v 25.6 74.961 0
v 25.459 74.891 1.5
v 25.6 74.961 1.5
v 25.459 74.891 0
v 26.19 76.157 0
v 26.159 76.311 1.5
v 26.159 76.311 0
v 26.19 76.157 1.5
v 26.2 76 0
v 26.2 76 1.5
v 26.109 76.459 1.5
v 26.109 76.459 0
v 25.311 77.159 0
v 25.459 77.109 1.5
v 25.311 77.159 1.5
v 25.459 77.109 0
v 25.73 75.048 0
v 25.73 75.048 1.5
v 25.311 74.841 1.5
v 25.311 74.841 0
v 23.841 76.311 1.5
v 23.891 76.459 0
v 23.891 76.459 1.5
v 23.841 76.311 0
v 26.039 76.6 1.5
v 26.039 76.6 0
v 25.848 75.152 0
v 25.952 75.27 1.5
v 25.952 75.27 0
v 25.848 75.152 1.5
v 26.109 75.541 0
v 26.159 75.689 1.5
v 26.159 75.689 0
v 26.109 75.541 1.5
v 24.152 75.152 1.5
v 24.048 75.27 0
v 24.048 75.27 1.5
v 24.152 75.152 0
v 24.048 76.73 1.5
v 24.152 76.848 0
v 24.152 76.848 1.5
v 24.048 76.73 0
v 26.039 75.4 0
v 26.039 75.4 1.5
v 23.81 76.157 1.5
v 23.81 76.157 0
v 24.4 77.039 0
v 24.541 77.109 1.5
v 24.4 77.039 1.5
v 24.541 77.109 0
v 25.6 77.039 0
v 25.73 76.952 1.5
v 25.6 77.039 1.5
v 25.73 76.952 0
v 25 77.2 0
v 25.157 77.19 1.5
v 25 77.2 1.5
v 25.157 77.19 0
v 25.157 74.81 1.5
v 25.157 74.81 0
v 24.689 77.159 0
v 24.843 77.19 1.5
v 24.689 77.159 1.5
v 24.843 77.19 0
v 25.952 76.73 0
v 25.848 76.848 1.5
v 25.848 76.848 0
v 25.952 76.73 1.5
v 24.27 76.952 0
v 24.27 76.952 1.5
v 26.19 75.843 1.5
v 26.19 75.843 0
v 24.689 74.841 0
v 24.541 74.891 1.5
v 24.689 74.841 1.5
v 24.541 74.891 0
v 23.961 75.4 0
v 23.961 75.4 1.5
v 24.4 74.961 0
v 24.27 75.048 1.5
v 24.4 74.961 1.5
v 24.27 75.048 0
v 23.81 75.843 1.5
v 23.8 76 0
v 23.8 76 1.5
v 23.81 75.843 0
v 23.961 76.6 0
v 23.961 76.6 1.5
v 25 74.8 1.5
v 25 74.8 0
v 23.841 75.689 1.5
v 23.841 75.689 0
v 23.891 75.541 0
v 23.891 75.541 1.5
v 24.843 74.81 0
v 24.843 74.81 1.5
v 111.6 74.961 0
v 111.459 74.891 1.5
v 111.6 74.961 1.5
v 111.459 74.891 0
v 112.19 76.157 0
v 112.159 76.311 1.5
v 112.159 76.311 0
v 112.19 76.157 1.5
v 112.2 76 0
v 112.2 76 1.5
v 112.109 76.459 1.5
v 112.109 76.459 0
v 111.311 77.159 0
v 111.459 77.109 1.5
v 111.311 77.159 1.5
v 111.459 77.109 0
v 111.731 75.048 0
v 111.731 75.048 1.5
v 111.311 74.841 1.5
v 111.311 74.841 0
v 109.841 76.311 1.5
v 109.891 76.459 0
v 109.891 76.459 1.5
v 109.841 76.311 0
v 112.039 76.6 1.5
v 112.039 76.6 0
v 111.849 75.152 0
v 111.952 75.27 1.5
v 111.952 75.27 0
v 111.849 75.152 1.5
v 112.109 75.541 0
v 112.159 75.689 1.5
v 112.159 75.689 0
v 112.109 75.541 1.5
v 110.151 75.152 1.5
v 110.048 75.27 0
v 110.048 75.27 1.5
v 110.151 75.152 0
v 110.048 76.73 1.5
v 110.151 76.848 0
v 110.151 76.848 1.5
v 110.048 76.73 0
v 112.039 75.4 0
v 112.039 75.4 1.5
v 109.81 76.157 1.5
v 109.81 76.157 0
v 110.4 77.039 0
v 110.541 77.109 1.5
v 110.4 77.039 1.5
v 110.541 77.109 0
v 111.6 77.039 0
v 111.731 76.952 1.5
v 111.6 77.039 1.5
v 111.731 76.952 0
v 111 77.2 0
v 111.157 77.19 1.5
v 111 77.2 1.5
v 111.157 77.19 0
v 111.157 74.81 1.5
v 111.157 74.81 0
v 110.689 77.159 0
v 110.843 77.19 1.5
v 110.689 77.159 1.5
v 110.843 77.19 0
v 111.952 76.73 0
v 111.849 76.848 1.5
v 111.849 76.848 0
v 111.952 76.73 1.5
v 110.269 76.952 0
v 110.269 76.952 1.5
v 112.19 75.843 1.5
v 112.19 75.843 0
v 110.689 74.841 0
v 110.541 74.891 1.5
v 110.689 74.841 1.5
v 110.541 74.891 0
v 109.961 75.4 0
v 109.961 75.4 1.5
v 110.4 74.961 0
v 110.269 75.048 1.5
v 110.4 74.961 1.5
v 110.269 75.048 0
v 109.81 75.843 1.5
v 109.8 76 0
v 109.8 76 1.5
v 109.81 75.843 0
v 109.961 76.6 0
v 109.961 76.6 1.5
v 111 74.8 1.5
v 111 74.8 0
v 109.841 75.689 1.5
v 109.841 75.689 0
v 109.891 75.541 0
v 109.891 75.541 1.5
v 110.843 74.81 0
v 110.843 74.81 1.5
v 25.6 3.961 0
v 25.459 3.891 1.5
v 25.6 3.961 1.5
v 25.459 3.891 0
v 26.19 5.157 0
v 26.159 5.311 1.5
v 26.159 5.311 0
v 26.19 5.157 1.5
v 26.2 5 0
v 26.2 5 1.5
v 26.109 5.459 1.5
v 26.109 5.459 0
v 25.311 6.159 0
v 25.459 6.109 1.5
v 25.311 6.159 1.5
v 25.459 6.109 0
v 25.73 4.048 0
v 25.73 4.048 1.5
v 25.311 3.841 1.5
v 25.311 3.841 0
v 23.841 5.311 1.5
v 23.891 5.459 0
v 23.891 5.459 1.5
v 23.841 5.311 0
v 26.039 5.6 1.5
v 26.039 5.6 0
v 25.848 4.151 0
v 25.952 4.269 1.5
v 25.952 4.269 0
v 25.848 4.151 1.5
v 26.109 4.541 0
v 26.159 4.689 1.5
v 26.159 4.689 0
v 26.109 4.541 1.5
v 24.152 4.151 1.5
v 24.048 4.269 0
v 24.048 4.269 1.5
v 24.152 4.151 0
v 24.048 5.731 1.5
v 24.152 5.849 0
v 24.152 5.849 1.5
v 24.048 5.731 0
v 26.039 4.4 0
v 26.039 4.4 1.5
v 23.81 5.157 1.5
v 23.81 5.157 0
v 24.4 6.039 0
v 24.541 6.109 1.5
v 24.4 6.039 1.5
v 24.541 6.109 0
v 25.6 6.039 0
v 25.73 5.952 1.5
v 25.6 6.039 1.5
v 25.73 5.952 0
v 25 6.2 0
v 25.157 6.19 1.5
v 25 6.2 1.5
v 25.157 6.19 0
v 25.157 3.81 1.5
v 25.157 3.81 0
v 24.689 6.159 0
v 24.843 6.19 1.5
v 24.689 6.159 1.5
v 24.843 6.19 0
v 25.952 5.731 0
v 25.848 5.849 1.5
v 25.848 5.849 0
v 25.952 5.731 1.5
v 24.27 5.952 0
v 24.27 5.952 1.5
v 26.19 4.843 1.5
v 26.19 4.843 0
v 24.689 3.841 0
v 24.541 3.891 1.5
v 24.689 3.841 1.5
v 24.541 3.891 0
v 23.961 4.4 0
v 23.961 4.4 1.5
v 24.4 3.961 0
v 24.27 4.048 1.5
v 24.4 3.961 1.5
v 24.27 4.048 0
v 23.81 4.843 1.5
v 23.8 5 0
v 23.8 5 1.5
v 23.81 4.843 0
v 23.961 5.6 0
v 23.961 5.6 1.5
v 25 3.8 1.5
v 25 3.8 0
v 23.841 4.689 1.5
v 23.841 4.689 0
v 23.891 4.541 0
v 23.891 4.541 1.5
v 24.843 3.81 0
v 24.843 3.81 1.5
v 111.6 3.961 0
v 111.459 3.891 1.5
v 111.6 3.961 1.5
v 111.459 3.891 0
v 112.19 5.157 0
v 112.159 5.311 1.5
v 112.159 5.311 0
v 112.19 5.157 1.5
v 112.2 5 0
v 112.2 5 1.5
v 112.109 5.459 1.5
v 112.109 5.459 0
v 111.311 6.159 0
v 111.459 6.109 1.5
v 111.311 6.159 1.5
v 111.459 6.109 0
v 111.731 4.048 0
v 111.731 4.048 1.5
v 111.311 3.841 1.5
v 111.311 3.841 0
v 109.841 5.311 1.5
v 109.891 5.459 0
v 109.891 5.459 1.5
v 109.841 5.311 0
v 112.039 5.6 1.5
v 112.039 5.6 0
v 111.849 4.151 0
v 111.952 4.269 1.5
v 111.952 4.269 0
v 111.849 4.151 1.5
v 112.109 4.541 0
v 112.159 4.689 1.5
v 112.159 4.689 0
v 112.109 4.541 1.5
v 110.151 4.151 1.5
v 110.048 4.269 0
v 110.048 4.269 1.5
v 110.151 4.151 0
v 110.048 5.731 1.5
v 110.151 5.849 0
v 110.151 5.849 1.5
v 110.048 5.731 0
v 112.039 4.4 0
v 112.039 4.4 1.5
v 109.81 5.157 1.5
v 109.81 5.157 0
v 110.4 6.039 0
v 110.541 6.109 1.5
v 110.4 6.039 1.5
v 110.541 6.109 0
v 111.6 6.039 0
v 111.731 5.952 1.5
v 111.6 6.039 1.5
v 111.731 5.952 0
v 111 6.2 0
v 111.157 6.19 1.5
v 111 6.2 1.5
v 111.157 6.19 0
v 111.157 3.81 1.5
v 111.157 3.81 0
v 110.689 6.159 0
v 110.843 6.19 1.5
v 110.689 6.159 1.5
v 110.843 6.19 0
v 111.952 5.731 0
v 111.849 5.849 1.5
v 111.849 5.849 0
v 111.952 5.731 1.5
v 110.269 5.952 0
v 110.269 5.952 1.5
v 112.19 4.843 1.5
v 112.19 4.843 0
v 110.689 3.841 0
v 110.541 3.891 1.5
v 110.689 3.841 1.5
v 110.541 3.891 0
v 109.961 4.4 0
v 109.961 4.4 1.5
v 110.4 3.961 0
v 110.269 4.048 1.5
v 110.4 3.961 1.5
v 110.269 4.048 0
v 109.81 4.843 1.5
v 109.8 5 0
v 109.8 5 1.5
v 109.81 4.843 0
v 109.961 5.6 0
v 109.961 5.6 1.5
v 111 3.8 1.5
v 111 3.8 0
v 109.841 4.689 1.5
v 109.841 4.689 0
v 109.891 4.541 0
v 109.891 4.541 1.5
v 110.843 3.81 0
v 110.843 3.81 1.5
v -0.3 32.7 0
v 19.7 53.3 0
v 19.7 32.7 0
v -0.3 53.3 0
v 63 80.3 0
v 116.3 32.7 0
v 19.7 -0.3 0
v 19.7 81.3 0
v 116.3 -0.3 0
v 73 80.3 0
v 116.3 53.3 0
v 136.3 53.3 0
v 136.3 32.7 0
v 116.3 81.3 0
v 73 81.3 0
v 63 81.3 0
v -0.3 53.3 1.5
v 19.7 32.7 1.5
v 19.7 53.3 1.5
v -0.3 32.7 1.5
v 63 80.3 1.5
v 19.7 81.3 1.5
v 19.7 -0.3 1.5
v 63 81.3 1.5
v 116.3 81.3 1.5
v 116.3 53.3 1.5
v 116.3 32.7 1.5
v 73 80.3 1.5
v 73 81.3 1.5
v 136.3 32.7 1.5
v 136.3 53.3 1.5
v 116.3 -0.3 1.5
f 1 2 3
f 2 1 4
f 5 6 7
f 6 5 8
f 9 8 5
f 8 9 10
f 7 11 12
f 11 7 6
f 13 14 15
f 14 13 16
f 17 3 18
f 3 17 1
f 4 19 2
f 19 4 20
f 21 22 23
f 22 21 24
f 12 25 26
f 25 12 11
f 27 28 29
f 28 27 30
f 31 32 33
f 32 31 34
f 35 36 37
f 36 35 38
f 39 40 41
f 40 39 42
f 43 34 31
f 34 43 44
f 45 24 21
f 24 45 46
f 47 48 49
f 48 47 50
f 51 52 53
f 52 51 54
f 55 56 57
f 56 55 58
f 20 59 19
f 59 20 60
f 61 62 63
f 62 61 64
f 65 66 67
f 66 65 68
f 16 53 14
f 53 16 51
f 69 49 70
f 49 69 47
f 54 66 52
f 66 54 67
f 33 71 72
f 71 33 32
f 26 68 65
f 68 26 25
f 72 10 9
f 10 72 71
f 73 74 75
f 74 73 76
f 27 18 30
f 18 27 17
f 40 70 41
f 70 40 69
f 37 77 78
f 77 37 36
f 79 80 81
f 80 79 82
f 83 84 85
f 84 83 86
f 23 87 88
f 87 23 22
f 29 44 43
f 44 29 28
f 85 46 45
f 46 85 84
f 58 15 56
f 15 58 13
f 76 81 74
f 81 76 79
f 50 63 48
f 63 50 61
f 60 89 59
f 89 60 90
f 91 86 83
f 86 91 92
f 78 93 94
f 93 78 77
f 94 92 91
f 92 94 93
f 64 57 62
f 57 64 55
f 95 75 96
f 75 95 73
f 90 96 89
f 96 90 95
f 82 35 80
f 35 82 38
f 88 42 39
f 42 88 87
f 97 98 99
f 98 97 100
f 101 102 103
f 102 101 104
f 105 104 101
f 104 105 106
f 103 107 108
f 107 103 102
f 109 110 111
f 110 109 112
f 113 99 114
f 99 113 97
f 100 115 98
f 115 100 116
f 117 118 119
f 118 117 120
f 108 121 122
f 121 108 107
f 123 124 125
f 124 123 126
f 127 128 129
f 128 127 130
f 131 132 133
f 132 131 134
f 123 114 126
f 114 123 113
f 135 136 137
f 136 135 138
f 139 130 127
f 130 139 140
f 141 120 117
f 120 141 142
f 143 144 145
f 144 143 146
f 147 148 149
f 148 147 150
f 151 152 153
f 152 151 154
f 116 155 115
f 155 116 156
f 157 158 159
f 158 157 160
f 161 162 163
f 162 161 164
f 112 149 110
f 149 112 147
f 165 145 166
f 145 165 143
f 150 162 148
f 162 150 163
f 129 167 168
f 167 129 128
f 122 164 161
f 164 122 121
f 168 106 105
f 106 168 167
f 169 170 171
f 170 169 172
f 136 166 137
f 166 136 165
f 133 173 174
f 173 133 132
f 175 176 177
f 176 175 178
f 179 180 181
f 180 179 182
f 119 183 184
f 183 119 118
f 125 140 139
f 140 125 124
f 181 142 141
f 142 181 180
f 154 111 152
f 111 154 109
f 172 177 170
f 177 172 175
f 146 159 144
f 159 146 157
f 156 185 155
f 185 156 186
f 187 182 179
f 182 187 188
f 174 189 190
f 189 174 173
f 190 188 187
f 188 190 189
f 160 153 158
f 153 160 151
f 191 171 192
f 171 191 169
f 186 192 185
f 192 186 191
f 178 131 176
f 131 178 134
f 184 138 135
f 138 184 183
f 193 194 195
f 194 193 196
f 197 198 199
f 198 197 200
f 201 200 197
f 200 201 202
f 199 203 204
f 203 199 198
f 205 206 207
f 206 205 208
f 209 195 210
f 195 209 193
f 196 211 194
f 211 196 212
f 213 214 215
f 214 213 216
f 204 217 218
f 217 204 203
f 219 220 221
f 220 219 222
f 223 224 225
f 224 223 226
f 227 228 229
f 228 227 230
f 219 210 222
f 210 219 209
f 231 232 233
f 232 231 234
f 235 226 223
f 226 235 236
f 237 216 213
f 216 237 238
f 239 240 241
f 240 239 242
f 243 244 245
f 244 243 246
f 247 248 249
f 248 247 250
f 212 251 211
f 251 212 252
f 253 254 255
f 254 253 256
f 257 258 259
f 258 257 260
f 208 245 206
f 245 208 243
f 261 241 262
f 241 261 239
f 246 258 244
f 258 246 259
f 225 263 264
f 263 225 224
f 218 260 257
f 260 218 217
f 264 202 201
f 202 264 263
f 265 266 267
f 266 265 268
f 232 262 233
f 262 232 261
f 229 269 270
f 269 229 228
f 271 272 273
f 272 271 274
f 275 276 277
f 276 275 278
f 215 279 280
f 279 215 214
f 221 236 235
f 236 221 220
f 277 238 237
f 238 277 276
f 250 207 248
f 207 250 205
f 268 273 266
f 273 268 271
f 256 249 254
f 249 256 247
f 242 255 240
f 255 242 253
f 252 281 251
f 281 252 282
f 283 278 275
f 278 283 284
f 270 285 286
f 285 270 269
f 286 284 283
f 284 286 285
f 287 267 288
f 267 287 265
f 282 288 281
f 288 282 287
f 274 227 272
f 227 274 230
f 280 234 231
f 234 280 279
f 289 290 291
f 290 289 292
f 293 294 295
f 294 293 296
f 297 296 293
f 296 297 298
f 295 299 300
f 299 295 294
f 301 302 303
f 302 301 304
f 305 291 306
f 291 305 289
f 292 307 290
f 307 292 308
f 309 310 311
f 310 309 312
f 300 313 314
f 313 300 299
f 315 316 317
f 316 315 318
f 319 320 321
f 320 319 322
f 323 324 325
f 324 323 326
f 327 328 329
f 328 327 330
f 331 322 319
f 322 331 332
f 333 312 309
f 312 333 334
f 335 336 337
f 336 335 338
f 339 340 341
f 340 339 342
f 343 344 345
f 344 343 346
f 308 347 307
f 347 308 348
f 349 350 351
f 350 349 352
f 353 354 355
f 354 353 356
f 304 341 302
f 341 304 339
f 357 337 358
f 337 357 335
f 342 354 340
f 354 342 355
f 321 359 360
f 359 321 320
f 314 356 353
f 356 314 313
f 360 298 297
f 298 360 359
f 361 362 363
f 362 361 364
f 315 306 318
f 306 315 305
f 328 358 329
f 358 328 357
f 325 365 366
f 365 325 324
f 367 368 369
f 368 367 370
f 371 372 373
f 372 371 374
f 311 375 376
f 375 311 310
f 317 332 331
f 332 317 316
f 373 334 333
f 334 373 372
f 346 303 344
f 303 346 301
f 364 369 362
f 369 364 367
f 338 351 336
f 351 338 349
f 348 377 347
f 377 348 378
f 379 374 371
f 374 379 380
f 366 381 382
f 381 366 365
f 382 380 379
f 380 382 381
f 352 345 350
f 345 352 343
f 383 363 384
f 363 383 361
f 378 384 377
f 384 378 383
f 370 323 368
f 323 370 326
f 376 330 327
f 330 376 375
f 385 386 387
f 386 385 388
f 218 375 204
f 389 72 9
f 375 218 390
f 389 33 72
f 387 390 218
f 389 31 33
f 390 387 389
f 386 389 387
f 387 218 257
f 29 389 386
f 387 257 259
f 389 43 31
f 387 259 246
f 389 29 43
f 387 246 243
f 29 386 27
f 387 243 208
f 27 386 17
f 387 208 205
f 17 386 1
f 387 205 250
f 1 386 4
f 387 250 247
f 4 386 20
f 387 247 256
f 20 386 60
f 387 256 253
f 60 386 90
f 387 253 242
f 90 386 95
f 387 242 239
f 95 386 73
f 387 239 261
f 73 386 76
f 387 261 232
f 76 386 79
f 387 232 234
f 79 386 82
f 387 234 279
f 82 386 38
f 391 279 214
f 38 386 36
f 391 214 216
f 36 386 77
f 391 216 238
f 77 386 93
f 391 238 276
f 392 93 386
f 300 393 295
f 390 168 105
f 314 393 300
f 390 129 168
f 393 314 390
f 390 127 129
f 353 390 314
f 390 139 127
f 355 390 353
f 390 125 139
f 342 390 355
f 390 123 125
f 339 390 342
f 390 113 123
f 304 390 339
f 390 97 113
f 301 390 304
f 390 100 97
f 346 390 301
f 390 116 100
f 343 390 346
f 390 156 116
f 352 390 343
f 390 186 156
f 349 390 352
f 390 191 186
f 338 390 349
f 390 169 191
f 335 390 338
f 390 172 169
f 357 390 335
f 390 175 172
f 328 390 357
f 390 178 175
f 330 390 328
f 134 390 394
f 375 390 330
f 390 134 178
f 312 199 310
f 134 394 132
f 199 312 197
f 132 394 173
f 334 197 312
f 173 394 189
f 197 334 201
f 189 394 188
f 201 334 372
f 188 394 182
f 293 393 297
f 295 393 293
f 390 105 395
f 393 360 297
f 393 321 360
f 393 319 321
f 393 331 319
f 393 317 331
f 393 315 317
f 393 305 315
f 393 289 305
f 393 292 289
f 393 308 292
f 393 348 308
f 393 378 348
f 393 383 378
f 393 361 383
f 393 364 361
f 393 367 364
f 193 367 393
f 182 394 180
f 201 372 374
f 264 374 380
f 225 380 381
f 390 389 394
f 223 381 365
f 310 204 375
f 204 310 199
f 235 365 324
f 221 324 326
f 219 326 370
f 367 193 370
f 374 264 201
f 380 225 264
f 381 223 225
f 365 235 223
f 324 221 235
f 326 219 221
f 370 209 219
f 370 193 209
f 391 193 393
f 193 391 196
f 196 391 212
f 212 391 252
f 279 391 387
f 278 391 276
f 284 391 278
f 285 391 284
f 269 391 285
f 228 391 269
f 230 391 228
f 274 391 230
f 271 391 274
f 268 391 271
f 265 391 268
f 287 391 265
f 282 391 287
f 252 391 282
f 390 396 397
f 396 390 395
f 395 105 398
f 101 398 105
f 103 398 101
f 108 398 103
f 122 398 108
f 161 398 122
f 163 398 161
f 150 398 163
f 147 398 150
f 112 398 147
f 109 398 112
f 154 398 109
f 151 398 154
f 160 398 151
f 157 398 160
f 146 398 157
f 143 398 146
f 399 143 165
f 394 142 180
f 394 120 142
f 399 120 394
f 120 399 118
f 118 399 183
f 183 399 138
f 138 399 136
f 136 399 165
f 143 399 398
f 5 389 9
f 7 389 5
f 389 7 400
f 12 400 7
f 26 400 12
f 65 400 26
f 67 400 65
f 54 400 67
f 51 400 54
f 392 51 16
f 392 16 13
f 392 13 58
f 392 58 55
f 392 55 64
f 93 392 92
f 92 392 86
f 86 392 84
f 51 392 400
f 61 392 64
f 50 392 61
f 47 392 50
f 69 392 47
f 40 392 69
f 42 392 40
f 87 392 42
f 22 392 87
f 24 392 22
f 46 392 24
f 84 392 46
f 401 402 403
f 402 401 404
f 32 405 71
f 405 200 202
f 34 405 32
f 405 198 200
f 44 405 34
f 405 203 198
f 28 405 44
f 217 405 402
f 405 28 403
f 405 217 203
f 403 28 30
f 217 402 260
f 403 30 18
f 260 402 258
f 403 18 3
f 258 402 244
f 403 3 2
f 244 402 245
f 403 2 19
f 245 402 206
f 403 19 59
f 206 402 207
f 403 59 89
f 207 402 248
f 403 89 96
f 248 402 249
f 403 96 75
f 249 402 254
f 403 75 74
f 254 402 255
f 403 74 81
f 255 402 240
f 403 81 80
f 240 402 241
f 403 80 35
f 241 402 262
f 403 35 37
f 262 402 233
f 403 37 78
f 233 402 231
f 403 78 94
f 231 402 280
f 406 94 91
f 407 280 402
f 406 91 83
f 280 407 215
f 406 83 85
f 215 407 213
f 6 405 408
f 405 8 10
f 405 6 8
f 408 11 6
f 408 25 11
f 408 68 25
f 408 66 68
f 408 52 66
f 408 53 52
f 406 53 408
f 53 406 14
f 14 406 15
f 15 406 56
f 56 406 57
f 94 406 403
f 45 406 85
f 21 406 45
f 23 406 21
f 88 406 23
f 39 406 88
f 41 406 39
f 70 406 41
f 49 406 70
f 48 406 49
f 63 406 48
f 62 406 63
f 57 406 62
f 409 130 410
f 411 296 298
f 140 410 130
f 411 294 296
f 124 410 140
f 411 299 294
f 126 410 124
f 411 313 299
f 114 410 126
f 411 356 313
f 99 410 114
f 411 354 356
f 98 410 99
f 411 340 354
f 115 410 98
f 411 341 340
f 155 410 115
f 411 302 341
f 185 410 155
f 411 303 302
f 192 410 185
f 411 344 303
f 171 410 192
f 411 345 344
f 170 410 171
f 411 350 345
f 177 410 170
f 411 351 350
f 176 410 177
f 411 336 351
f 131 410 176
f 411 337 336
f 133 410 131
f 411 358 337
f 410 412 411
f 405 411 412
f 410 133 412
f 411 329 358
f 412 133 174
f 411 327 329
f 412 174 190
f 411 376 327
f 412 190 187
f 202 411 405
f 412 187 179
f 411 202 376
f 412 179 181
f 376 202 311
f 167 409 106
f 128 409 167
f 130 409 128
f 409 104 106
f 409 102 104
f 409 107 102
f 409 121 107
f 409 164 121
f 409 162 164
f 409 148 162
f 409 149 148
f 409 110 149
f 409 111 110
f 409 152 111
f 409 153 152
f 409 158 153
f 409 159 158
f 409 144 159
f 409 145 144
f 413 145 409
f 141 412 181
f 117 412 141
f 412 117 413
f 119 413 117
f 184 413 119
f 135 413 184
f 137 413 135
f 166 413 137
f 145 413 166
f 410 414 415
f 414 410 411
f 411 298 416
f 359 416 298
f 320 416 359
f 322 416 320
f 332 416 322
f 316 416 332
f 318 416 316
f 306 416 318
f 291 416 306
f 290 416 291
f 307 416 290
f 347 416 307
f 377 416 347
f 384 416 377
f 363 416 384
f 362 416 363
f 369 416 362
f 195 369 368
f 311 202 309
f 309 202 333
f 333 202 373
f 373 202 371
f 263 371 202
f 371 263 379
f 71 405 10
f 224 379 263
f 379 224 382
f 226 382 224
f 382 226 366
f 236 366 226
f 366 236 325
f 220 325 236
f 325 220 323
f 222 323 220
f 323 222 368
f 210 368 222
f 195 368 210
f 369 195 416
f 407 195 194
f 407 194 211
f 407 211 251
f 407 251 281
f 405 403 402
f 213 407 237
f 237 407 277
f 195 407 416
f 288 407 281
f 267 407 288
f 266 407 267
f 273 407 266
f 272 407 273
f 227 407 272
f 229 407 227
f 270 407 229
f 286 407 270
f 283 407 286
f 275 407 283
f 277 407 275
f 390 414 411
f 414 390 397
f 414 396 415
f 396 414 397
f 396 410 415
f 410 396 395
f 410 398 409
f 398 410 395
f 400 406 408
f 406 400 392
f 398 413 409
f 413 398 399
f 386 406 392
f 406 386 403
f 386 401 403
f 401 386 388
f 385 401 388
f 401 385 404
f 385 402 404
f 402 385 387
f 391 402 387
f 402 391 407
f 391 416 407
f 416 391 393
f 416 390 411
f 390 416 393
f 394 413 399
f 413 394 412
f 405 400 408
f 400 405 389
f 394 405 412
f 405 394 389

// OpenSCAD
// Claude Macropad - Bottom Plate
// Prints flat. Screws onto standoffs through PCB mounting holes.

$fn = 48;

inner = [[19.70, 81.30], [116.30, 81.30], [116.30, 53.30], [136.30, 53.30], [136.30, 32.70], [116.30, 32.70], [116.30, -0.30], [19.70, -0.30], [19.70, 32.70], [-0.30, 32.70], [-0.30, 53.30], [19.70, 53.30]];

bottom_t = 1.5;

color([0.15, 0.15, 0.15])
difference() {
    linear_extrude(height=bottom_t)
        polygon(points=inner);

    // M2 clearance holes (2.4mm)
    for (pos = [[25, 76], [111, 76], [25, 5], [111, 5]]) {
        translate([pos[0], pos[1], -0.1])
            cylinder(h=bottom_t + 0.2, d=2.4);
    }

    // USB-C clearance notch
    translate([63.0, 81.30 - 1, -0.1])
        cube([10.0, 3, bottom_t + 0.2]);
}
